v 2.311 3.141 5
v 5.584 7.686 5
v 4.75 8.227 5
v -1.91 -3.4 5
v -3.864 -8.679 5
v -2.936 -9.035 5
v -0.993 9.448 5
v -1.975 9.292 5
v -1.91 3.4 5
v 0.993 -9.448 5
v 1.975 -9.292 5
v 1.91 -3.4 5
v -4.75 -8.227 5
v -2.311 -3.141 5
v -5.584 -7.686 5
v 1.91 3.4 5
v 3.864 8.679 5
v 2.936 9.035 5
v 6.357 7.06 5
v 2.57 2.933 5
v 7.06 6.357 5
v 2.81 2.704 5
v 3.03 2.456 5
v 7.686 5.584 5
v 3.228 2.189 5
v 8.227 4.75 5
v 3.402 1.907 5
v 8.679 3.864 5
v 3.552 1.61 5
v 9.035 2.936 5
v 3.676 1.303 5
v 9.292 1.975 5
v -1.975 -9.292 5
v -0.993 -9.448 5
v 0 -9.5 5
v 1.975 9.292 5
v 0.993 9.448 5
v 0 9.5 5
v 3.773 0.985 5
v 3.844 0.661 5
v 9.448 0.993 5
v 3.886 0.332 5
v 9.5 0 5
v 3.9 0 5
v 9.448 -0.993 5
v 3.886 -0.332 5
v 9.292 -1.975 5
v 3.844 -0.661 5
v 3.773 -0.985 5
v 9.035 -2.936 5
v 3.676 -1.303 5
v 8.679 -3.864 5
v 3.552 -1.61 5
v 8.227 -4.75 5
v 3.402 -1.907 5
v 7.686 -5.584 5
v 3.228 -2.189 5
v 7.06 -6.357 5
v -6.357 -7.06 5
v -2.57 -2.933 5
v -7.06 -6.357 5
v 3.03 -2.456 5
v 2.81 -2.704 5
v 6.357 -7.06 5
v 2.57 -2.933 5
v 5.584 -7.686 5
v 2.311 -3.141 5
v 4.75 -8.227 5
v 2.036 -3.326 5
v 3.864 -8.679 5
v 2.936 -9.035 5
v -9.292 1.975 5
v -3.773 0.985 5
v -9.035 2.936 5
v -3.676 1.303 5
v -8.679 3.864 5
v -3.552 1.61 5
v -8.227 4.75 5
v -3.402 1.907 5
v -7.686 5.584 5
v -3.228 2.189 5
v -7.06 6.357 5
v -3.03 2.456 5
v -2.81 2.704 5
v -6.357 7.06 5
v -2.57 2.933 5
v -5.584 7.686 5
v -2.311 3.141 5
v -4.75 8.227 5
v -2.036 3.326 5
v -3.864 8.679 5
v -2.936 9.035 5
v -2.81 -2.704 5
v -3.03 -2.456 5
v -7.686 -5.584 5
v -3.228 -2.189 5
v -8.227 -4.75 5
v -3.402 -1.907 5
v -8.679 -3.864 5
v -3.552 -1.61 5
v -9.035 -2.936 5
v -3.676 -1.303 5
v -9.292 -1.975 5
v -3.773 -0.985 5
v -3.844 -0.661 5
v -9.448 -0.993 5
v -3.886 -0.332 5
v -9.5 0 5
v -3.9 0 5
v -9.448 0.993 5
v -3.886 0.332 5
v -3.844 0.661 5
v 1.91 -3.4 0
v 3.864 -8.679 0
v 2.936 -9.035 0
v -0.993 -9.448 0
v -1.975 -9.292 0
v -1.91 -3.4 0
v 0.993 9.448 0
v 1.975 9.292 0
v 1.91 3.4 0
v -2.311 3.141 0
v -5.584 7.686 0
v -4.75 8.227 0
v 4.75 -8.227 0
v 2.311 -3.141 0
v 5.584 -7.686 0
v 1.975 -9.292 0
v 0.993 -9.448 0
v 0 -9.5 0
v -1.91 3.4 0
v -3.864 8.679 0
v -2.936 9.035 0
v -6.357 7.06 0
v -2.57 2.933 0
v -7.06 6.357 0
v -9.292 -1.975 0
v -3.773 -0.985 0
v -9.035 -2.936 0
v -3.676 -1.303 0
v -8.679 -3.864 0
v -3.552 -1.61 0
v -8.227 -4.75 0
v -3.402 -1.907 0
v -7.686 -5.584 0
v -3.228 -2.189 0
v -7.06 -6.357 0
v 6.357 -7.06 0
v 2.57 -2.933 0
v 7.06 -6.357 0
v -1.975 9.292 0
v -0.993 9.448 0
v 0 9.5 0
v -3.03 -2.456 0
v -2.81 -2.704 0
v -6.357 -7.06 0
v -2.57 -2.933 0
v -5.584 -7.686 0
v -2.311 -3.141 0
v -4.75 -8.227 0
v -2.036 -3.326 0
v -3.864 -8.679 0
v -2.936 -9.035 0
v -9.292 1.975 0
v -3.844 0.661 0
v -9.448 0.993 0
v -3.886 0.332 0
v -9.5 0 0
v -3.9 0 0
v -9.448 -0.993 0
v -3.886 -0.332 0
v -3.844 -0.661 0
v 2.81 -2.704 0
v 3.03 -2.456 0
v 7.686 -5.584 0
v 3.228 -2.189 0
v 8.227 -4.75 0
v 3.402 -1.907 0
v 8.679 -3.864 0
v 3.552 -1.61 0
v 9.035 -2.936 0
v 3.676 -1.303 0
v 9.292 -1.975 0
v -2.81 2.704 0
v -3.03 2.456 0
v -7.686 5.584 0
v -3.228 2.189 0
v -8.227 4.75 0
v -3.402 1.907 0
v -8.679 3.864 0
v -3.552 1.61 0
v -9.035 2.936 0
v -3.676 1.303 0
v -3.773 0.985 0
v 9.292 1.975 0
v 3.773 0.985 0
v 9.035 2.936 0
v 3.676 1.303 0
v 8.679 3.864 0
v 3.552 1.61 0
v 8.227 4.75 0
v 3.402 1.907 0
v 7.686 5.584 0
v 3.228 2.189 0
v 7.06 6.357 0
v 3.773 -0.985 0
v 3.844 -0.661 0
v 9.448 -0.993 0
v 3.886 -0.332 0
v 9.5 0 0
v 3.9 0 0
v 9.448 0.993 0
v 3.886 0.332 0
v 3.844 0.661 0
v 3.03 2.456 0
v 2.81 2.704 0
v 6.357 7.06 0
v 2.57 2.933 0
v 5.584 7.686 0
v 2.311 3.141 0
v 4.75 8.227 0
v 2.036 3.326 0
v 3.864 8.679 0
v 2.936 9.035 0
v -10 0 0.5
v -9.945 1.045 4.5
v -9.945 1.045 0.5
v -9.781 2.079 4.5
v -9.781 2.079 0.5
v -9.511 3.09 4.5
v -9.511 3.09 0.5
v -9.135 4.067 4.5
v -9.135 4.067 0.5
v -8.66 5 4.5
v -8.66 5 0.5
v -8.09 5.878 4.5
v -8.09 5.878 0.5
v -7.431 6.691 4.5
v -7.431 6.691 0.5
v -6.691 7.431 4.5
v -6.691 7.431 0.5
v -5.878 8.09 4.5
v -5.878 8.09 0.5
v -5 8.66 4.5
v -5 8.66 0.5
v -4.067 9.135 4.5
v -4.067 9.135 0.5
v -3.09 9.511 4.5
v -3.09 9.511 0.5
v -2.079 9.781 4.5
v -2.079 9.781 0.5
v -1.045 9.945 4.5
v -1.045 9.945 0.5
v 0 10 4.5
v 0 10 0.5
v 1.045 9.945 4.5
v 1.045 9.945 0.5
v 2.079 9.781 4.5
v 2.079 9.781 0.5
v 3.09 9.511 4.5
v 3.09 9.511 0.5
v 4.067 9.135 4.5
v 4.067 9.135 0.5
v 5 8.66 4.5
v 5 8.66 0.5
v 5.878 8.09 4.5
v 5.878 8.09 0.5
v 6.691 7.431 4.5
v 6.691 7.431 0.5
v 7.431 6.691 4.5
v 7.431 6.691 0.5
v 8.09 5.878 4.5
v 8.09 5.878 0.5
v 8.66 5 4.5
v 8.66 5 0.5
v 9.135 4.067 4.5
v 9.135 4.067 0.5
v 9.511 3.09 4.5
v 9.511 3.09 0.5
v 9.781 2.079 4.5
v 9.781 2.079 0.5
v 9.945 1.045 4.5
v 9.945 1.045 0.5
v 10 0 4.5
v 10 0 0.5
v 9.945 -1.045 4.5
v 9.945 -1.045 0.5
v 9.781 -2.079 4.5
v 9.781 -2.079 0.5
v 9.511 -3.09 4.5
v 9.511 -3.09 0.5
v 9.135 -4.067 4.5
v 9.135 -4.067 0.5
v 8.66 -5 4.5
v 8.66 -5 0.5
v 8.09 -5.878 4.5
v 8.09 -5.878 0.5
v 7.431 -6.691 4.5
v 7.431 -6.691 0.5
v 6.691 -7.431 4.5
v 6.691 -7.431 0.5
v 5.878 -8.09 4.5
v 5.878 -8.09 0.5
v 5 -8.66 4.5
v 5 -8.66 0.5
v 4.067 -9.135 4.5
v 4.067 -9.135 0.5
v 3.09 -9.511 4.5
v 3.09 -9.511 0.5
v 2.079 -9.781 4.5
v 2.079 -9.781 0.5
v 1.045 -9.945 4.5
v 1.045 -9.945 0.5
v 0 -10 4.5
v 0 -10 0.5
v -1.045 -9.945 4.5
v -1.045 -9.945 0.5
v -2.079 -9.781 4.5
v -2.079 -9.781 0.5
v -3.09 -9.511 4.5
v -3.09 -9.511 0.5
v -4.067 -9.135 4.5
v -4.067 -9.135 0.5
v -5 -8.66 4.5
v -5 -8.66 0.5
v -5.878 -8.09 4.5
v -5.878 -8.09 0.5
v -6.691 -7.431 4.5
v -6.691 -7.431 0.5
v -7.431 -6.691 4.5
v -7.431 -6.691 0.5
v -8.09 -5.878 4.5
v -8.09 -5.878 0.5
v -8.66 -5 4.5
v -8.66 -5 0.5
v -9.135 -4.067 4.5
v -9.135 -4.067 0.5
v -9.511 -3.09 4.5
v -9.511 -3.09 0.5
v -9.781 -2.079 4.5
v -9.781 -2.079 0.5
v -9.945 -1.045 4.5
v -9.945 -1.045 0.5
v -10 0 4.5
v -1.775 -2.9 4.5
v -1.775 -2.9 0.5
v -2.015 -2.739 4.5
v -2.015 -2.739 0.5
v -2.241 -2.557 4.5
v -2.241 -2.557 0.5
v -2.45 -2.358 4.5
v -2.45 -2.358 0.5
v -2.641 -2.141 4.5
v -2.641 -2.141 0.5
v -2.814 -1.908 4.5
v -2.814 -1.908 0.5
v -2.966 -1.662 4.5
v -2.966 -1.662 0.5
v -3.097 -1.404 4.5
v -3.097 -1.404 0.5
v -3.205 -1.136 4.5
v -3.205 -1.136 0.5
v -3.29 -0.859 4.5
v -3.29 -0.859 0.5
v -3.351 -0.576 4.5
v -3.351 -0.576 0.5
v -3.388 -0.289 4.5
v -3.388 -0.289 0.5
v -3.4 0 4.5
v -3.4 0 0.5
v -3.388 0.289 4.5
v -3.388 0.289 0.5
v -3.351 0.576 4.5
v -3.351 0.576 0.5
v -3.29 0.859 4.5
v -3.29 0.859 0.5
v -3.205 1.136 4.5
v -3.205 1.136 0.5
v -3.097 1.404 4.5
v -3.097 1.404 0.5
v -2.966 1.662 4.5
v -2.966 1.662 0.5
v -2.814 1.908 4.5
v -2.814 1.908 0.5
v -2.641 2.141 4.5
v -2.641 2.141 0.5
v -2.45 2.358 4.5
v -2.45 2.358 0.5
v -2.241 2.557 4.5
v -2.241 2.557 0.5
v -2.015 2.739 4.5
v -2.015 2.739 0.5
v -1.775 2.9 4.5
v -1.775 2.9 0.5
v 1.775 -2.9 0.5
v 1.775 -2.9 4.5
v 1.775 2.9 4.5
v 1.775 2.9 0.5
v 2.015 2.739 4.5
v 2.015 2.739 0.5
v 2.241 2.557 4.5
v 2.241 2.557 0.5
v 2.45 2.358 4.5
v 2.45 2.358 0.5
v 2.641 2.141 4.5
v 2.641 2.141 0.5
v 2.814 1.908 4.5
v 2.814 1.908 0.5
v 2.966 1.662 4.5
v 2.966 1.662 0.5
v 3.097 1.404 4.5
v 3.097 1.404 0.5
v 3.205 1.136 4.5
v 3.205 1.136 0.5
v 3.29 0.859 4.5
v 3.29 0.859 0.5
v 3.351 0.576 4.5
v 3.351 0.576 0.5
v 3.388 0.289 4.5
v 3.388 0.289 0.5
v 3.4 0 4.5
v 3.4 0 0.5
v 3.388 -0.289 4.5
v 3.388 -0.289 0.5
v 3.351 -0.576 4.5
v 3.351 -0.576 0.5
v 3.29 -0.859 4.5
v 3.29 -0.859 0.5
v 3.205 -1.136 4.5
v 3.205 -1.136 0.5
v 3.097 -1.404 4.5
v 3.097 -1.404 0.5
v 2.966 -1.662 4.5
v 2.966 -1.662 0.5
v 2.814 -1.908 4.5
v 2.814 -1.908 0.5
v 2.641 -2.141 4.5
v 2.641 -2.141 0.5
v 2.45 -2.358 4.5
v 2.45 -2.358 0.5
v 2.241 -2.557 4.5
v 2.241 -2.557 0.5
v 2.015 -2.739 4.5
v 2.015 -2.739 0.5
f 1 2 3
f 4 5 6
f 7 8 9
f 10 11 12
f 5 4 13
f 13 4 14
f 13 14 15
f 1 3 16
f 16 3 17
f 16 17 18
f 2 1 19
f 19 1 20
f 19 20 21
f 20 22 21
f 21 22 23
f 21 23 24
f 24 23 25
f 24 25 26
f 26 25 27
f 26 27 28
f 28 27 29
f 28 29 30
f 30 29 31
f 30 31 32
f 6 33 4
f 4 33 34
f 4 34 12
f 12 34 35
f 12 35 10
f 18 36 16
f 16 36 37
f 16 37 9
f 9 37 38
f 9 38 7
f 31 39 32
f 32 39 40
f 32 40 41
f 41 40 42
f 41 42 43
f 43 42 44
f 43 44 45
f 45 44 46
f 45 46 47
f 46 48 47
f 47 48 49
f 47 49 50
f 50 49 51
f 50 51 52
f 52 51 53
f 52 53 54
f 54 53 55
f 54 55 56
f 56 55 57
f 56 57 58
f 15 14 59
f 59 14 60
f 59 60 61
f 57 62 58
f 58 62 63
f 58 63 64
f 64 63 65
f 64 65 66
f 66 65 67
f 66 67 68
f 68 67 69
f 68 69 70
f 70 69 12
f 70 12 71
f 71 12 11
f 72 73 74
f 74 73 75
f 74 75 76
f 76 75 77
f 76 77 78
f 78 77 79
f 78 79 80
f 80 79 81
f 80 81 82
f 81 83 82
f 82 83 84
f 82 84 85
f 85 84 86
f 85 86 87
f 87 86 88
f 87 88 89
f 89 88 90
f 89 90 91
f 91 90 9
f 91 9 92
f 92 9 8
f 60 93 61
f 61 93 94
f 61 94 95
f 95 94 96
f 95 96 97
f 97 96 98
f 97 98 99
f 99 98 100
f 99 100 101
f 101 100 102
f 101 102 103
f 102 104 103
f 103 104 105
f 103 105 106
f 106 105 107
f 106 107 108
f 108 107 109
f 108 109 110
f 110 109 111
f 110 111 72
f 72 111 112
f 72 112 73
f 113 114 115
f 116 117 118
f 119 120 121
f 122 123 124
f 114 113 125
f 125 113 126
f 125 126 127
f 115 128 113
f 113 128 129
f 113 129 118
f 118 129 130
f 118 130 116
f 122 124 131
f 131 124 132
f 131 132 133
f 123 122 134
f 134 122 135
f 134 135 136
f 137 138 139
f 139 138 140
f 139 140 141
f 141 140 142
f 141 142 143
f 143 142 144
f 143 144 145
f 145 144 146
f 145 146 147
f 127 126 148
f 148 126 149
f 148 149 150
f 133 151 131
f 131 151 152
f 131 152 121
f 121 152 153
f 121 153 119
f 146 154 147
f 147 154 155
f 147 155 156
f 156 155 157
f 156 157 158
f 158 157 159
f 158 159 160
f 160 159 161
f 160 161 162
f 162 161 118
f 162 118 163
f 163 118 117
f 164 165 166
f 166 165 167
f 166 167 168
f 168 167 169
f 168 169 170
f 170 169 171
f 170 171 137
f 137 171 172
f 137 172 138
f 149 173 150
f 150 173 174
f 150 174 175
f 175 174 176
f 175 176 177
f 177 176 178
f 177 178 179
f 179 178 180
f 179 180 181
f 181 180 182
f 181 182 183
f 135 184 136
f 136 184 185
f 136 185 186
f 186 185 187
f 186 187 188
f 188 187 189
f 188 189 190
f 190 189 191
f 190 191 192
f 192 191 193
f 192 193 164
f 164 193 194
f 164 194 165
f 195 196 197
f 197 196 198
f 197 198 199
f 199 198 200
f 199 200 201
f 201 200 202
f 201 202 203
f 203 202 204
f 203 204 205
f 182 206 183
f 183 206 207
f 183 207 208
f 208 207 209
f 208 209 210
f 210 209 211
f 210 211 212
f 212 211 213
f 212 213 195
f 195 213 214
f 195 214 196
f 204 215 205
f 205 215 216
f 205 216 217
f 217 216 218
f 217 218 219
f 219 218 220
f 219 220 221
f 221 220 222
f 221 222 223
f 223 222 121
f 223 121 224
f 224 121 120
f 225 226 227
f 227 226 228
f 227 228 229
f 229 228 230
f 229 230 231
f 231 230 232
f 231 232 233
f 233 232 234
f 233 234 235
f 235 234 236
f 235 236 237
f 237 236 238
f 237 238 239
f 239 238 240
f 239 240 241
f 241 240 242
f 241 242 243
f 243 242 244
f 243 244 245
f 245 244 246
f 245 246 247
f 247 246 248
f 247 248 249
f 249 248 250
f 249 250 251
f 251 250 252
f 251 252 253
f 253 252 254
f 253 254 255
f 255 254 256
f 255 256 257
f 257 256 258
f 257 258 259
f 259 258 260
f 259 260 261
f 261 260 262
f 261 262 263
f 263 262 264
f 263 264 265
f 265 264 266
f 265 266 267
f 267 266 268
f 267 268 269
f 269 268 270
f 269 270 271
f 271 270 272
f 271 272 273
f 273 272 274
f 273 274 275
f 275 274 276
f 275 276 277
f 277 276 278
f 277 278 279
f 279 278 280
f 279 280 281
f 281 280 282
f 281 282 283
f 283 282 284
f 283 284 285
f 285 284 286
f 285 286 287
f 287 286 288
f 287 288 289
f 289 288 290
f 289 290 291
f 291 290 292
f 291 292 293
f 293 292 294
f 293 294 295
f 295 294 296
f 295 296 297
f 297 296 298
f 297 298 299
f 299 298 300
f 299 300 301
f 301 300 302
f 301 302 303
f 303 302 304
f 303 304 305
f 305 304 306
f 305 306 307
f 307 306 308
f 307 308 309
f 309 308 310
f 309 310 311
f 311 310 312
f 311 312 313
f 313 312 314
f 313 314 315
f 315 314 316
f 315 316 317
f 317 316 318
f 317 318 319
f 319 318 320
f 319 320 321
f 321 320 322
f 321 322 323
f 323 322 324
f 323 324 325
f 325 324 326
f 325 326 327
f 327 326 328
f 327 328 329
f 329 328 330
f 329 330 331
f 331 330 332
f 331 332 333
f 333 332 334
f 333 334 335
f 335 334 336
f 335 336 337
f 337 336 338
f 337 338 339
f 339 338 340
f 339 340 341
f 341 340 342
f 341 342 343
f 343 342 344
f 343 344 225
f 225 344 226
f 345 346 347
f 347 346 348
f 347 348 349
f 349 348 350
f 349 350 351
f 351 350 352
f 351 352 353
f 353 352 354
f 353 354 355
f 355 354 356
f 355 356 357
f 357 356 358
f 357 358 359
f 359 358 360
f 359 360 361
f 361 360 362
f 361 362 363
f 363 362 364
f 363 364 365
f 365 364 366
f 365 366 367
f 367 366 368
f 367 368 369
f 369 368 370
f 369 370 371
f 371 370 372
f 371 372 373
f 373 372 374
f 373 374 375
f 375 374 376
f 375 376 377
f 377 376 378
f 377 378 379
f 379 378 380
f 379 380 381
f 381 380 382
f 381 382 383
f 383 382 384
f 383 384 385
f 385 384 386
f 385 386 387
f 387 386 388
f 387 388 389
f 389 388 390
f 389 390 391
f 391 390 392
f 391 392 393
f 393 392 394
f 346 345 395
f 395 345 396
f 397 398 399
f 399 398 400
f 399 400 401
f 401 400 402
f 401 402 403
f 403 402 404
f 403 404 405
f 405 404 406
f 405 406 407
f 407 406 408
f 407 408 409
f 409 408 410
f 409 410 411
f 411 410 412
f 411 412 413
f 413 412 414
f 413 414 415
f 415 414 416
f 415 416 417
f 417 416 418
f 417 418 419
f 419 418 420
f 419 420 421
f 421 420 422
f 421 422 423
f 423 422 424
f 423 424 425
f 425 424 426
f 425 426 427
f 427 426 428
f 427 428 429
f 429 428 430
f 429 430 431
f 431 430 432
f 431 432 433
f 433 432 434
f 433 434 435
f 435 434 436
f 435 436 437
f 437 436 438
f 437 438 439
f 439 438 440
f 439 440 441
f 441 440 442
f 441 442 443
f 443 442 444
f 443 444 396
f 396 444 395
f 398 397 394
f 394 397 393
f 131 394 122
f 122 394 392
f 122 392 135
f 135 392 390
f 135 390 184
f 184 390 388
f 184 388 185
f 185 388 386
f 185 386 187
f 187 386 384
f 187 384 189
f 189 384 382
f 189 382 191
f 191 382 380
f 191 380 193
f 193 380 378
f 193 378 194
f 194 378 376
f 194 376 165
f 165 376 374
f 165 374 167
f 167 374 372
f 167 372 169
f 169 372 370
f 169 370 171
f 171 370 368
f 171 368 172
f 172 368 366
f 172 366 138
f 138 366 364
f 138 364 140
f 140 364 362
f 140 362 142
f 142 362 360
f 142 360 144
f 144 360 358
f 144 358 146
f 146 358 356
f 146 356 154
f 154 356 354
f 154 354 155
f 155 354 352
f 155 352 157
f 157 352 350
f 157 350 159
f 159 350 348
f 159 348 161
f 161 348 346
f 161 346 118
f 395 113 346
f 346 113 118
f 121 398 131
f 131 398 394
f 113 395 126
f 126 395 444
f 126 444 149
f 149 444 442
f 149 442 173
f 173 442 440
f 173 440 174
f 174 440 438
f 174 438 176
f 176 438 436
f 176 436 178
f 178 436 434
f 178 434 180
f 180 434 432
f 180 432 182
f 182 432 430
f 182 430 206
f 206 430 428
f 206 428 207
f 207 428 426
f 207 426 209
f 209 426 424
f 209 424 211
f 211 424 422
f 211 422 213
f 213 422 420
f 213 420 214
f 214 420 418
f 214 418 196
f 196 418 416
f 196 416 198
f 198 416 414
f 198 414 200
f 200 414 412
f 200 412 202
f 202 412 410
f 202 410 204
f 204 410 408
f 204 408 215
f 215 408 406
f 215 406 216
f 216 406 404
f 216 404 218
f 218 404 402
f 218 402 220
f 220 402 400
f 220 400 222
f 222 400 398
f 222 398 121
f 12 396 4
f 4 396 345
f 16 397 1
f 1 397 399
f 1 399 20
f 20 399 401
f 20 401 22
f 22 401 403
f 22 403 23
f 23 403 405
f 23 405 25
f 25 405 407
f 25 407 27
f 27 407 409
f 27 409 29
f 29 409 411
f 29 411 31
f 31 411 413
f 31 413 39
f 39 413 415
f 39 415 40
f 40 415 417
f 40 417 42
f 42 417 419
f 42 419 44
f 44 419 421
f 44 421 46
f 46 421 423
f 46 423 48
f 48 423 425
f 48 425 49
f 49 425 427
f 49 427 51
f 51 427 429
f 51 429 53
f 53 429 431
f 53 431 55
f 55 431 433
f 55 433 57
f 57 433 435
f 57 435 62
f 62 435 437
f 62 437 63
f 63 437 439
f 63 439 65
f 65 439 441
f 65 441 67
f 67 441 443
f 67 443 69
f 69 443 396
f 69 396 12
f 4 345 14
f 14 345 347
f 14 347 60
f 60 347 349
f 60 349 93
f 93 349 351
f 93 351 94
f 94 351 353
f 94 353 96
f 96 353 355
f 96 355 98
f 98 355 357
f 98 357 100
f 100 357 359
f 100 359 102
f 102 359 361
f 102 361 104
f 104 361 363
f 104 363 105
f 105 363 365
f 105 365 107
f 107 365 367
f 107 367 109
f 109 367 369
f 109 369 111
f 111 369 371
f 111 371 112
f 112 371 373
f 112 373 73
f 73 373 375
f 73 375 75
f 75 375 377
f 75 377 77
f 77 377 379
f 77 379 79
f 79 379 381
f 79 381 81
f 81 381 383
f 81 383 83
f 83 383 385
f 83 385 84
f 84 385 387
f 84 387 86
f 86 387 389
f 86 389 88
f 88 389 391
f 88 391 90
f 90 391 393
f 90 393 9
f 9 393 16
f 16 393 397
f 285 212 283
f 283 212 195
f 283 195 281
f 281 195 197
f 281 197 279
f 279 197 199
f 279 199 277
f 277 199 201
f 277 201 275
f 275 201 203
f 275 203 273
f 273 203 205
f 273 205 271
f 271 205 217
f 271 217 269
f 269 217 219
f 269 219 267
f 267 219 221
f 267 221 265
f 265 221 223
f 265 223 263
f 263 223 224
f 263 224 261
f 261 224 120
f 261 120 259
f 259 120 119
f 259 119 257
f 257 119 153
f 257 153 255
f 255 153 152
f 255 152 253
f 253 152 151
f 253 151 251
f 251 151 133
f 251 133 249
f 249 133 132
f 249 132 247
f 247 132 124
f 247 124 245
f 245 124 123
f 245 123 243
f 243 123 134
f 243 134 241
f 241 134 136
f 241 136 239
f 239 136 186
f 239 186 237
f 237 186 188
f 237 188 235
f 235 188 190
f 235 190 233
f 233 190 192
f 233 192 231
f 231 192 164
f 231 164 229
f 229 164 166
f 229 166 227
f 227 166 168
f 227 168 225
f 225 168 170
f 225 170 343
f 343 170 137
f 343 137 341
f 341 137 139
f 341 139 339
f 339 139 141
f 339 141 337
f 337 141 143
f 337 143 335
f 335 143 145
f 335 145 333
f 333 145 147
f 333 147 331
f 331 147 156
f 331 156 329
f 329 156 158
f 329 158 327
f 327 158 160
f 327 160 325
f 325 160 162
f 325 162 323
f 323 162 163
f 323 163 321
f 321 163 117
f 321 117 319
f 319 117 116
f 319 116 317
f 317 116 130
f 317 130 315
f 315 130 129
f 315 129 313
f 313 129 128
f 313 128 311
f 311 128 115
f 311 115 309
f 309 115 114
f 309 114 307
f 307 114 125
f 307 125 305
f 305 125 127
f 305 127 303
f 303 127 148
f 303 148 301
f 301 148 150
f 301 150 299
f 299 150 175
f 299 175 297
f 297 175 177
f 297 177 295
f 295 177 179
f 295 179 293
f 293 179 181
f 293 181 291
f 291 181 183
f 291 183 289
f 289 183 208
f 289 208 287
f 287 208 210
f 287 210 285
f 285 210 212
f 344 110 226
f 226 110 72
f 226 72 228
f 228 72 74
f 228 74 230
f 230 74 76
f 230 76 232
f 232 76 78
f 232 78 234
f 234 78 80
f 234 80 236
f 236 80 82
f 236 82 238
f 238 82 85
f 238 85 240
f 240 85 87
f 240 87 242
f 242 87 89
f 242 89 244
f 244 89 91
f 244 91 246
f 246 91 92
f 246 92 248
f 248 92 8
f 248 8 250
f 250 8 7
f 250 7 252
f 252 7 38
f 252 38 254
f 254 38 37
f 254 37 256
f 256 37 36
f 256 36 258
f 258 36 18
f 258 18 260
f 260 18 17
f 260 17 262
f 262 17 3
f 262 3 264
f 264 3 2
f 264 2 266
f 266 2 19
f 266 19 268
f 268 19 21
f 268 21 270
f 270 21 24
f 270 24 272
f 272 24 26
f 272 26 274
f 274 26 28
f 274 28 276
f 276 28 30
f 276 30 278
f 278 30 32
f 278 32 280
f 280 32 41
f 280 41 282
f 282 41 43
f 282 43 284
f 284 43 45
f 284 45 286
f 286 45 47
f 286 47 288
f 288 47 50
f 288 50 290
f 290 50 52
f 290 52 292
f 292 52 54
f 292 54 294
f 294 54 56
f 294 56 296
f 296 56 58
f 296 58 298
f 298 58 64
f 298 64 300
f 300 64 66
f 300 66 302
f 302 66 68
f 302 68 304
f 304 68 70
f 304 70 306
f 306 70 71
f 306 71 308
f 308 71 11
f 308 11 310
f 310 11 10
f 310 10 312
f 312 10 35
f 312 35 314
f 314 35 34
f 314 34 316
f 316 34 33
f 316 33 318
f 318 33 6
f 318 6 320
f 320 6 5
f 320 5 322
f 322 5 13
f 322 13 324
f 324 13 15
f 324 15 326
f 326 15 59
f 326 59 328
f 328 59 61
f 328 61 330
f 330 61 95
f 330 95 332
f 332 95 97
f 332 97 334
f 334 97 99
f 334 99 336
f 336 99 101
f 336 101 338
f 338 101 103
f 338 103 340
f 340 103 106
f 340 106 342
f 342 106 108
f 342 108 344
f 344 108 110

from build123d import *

# Parameters (mm, degrees)
SKETCH1_R           = 10
BOSS_EXTRUDE1_DEPTH = 5
CHAMFER1_SIZE       = 0.5


with BuildPart() as part:
    # Sketch1 → Boss-Extrude1 (new body)
    with BuildSketch(Plane.XY):
        Circle(SKETCH1_R)
        with BuildLine():
            Line((-1.774823935, 2.9), (1.774823935, 2.9))
            ThreePointArc((1.774823935, 2.9), (3.4, 0), (1.774823935, -2.9))
            Line((1.774823935, -2.9), (-1.774823935, -2.9))
            ThreePointArc((-1.774823935, -2.9), (-3.4, 0), (-1.774823935, 2.9))
        make_face(mode=Mode.SUBTRACT)
    extrude(amount=BOSS_EXTRUDE1_DEPTH)

    # Chamfer1
    chamfer1_edges = [part.edges().sort_by_distance(p)[0] for p in [
        (3.4, 0, 5),
        (0, 2.9, 5),
        (-10, 0, 0),
        (-10, 0, 5),
        (-3.4, 0, 0),
        (0, -2.9, 0),
        (3.4, 0, 0),
        (0, 2.9, 0),
        (-3.4, 0, 5),
        (0, -2.9, 5),
    ]]
    chamfer(chamfer1_edges, length=CHAMFER1_SIZE)


solid = part.part
